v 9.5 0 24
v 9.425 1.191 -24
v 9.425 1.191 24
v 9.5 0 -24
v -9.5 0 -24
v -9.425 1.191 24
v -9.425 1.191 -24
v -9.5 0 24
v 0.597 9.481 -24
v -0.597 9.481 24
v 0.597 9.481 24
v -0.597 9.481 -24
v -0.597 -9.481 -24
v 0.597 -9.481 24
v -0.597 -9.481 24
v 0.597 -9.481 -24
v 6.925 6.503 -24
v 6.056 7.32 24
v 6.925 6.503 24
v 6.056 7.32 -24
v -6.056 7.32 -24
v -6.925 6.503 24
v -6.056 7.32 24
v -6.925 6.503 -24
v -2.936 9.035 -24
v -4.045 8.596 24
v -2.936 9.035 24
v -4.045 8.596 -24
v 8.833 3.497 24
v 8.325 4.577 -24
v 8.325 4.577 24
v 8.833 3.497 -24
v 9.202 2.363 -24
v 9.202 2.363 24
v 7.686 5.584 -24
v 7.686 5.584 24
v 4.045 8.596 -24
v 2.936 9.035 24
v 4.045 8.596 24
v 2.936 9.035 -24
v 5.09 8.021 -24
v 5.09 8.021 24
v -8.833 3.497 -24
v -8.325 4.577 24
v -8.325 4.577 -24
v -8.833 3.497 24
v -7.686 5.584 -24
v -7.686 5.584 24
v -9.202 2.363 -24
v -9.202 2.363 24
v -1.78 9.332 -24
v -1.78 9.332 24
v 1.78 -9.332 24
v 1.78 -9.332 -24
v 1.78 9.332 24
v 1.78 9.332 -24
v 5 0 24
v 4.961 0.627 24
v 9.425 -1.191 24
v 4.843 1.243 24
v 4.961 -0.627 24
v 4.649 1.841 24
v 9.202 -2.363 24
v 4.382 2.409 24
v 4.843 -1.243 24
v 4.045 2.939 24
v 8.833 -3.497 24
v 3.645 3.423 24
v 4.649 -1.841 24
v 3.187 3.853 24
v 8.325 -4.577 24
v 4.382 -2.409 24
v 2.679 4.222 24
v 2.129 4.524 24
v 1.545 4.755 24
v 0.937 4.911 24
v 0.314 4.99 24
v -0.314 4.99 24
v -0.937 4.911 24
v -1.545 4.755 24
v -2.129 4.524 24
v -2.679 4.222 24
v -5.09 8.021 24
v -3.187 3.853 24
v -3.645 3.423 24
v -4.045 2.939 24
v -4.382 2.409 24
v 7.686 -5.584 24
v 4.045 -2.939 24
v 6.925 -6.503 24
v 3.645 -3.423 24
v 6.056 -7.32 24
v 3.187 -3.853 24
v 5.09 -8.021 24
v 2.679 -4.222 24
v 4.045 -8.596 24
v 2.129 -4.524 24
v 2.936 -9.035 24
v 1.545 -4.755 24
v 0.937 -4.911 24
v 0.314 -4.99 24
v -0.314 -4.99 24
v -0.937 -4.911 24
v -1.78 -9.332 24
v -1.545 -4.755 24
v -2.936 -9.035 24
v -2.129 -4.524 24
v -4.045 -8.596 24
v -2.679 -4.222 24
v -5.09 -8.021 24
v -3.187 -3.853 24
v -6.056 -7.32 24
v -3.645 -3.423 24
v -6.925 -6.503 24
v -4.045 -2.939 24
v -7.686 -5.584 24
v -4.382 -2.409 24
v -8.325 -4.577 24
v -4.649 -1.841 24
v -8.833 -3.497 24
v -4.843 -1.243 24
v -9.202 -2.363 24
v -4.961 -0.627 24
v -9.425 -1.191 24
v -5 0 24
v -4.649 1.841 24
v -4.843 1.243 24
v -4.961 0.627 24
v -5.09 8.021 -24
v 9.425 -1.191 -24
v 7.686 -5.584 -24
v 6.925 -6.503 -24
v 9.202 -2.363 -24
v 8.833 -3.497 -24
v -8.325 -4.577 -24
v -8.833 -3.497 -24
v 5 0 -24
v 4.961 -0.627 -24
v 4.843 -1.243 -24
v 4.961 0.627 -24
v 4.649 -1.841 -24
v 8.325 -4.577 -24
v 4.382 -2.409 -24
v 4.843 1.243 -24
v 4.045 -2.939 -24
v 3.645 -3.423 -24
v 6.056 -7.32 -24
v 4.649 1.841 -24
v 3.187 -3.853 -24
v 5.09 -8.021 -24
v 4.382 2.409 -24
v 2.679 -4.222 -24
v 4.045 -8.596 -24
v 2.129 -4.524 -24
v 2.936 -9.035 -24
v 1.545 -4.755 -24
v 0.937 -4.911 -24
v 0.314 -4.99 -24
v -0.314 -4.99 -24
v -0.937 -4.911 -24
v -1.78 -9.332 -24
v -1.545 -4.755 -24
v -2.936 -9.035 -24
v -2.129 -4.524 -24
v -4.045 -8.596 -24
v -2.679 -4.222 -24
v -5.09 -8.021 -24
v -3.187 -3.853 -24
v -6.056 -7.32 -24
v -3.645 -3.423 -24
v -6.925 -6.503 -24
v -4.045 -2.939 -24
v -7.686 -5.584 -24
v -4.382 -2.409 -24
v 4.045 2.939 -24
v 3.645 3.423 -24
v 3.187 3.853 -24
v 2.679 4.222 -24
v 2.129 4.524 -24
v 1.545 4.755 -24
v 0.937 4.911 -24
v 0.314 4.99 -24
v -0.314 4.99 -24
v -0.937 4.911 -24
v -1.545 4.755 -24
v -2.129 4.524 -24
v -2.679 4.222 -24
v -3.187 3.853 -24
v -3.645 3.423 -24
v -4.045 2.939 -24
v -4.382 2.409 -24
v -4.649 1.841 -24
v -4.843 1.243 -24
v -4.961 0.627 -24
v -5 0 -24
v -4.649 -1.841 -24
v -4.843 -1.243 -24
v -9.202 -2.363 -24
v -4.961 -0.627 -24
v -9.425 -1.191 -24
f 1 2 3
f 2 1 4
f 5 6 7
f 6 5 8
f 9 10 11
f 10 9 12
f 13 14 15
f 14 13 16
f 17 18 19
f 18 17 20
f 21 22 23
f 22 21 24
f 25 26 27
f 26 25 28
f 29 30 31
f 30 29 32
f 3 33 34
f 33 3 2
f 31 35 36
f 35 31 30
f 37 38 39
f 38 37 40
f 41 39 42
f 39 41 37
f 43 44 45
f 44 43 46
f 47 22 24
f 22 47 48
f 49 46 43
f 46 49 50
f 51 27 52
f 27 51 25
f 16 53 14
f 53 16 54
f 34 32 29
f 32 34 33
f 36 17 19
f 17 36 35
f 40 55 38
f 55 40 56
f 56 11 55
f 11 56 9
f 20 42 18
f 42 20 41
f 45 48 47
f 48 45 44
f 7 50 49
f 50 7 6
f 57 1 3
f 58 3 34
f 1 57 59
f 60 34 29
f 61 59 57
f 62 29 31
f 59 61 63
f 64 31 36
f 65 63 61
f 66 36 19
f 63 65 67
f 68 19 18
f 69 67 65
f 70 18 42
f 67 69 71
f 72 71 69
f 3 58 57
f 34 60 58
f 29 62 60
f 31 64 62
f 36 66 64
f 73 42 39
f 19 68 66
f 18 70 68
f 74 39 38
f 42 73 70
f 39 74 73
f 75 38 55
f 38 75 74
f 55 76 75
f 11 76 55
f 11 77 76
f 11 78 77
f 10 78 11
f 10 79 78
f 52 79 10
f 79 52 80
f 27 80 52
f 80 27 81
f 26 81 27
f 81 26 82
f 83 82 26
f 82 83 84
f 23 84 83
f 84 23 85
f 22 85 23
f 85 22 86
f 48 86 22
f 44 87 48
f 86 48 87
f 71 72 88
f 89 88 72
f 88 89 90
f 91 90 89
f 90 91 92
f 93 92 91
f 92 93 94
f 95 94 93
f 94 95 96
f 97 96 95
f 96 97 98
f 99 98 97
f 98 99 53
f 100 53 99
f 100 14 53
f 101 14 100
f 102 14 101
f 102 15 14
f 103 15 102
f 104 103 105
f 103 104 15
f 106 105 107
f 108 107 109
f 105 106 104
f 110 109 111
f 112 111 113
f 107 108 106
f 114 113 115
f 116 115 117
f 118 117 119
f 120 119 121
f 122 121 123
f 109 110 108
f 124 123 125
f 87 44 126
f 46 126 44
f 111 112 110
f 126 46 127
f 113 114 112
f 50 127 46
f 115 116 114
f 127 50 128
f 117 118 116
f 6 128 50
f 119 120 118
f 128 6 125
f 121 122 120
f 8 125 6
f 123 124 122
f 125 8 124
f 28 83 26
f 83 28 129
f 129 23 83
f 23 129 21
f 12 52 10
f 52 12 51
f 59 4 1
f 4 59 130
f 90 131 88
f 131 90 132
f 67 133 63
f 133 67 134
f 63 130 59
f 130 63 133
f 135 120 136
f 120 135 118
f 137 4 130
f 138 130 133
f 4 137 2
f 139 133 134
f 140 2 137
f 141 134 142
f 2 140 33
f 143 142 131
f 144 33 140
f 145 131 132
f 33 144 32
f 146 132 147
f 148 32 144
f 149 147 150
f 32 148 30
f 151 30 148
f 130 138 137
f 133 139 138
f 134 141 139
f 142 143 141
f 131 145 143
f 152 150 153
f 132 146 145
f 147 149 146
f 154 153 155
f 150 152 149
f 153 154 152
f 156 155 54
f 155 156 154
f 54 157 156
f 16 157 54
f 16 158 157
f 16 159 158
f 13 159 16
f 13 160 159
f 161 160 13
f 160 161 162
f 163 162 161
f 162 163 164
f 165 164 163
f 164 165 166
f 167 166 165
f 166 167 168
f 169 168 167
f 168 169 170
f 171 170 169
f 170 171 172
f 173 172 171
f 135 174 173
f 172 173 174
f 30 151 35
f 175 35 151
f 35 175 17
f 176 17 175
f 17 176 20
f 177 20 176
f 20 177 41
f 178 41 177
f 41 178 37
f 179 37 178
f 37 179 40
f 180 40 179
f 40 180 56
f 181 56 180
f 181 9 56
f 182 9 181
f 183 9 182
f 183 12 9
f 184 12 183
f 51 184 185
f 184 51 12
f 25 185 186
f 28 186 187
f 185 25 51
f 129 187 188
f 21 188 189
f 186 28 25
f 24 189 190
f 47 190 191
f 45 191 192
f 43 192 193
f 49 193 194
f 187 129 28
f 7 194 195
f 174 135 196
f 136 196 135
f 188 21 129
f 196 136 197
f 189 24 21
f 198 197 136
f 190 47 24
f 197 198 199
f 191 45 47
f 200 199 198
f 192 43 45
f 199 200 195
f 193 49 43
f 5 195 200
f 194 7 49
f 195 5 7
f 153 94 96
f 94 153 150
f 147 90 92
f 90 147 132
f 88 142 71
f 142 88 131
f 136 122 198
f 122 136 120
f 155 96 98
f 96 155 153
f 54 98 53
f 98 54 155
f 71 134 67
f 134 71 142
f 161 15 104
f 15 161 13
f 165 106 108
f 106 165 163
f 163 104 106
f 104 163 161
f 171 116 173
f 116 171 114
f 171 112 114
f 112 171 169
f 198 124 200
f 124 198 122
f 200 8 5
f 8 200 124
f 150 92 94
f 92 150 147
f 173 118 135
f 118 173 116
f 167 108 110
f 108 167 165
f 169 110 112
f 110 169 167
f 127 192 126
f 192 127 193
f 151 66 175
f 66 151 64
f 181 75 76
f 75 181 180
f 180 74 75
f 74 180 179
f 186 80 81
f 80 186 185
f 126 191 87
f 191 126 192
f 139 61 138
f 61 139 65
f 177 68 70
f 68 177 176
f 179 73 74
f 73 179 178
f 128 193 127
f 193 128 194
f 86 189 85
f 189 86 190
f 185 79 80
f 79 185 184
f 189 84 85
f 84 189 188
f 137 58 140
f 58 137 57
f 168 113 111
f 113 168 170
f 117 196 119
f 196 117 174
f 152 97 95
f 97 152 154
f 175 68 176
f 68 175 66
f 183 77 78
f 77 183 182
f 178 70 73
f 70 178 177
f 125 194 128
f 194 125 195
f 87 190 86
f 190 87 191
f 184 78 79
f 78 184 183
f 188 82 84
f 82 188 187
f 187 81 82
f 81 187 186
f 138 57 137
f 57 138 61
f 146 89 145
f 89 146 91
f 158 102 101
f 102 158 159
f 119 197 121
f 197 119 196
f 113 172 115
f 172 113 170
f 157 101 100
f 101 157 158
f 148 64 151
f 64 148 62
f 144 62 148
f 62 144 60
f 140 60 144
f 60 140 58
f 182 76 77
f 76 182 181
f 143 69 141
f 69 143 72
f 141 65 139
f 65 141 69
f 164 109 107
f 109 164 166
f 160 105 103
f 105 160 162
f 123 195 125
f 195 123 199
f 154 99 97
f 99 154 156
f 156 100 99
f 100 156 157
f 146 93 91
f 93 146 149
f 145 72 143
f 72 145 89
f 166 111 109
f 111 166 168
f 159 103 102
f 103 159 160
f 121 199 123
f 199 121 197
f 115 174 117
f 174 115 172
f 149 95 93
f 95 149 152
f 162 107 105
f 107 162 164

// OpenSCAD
$fn = 50;


difference() {
	union() {
		translate(v = [0, 0, -24.0000000000]) {
			cylinder(h = 48, r = 9.5000000000);
		}
	}
	union() {
		translate(v = [0, 0, -100.0000000000]) {
			cylinder(h = 200, r = 5.0000000000);
		}
	}
}
